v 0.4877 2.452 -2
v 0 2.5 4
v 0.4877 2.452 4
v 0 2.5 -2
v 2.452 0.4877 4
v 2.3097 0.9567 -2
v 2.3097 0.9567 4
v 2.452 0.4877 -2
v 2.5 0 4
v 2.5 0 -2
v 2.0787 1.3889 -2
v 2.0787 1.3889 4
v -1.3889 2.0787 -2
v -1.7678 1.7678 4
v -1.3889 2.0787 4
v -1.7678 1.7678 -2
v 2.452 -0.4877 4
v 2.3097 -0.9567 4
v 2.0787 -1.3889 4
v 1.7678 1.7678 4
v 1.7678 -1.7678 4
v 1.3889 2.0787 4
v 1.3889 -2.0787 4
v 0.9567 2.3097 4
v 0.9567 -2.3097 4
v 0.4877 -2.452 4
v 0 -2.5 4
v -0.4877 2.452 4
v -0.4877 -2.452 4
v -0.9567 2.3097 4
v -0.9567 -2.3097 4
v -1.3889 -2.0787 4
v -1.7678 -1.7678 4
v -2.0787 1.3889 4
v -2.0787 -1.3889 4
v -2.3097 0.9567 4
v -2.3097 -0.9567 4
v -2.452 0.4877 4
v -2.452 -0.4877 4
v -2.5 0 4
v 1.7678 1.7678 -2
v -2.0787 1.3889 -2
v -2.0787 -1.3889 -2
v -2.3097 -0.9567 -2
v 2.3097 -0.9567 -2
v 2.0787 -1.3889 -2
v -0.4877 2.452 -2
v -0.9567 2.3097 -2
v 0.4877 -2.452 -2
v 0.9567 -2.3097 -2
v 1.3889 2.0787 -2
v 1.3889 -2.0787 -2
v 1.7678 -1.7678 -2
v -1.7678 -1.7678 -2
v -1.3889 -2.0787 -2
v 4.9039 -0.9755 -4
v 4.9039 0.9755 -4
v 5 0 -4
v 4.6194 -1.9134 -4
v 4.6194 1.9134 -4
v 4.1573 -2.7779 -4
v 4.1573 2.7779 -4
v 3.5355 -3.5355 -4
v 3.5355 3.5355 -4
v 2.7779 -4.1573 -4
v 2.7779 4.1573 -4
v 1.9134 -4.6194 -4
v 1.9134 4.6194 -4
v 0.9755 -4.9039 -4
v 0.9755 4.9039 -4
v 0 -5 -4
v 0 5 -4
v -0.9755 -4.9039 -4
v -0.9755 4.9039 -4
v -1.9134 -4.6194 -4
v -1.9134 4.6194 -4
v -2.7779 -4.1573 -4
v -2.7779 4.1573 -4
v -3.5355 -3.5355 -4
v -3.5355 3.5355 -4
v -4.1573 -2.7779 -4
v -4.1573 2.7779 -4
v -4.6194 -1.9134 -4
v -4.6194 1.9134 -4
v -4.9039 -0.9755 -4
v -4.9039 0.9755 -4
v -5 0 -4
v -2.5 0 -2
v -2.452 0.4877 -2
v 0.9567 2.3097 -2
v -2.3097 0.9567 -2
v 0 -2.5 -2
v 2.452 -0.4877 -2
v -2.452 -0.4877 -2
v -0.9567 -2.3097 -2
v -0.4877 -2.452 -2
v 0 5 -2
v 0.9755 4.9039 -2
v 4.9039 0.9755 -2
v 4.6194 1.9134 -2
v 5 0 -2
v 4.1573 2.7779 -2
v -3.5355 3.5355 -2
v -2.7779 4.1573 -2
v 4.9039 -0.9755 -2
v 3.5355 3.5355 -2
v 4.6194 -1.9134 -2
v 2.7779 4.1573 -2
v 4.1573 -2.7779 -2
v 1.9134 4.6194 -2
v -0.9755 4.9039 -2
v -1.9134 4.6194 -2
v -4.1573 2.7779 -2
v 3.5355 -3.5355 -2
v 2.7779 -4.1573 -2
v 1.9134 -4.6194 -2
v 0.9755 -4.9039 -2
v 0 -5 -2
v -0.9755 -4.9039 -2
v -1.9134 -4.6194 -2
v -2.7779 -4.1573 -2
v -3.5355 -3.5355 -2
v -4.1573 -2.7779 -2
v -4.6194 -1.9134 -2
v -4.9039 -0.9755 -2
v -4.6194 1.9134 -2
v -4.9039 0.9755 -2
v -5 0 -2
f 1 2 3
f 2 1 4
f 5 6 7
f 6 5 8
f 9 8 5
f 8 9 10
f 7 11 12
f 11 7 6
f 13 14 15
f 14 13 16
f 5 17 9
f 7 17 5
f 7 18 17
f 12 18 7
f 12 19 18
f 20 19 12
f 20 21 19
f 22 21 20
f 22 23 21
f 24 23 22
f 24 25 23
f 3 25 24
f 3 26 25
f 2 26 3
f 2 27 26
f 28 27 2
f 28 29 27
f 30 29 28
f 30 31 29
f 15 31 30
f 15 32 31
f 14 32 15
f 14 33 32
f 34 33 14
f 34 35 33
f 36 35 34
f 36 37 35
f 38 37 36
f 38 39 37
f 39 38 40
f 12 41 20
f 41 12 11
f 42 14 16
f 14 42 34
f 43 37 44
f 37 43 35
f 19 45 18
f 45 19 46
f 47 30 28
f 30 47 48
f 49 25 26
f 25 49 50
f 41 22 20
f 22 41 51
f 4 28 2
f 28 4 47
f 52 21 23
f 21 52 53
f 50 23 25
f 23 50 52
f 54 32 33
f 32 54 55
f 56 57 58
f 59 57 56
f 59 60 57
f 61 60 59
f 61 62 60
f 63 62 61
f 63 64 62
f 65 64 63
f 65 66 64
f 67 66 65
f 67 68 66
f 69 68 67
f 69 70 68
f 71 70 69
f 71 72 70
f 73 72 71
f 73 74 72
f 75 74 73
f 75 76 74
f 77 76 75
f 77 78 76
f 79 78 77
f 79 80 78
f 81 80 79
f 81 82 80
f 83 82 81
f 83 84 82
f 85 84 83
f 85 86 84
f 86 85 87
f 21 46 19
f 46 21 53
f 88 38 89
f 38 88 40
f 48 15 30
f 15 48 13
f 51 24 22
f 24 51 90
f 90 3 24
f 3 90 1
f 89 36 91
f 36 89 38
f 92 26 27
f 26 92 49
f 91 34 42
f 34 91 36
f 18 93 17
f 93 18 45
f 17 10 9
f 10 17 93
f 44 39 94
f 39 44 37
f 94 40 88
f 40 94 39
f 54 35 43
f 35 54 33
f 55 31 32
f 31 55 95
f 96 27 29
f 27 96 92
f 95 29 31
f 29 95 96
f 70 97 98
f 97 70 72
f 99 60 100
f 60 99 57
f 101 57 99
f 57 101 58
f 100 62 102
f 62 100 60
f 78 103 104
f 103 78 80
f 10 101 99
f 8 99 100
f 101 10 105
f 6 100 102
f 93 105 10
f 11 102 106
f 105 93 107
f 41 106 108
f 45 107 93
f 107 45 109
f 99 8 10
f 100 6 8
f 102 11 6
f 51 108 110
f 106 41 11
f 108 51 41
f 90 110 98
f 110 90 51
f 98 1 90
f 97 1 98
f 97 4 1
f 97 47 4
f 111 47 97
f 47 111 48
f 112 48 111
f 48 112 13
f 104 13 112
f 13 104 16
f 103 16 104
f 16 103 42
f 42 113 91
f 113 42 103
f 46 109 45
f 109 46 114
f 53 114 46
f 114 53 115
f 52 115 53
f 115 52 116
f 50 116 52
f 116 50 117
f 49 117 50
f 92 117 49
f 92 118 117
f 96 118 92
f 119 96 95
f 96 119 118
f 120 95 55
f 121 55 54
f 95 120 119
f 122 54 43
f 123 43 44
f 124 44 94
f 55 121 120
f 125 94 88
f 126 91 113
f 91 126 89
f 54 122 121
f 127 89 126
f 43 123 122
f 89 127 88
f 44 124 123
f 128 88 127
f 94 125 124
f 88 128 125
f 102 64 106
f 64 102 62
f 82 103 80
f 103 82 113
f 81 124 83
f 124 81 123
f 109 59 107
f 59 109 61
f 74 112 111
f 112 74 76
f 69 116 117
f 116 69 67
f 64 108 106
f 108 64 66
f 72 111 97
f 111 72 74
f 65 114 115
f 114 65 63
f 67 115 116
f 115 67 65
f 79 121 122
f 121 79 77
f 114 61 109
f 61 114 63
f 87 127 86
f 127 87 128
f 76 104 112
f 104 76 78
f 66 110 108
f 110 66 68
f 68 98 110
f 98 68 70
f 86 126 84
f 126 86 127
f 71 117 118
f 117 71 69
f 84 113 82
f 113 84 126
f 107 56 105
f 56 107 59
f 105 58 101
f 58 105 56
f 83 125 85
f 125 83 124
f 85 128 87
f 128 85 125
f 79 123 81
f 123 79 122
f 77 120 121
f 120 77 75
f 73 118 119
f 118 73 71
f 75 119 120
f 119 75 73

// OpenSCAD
$fn=32;

Alto=8;
Diametro=5;
Espesor=2;



cylinder(d=Diametro,h=Alto, center=true);
translate([0,0,-Alto/2+Espesor/2]) 
    cylinder(d=10,h=Espesor, center=true);
